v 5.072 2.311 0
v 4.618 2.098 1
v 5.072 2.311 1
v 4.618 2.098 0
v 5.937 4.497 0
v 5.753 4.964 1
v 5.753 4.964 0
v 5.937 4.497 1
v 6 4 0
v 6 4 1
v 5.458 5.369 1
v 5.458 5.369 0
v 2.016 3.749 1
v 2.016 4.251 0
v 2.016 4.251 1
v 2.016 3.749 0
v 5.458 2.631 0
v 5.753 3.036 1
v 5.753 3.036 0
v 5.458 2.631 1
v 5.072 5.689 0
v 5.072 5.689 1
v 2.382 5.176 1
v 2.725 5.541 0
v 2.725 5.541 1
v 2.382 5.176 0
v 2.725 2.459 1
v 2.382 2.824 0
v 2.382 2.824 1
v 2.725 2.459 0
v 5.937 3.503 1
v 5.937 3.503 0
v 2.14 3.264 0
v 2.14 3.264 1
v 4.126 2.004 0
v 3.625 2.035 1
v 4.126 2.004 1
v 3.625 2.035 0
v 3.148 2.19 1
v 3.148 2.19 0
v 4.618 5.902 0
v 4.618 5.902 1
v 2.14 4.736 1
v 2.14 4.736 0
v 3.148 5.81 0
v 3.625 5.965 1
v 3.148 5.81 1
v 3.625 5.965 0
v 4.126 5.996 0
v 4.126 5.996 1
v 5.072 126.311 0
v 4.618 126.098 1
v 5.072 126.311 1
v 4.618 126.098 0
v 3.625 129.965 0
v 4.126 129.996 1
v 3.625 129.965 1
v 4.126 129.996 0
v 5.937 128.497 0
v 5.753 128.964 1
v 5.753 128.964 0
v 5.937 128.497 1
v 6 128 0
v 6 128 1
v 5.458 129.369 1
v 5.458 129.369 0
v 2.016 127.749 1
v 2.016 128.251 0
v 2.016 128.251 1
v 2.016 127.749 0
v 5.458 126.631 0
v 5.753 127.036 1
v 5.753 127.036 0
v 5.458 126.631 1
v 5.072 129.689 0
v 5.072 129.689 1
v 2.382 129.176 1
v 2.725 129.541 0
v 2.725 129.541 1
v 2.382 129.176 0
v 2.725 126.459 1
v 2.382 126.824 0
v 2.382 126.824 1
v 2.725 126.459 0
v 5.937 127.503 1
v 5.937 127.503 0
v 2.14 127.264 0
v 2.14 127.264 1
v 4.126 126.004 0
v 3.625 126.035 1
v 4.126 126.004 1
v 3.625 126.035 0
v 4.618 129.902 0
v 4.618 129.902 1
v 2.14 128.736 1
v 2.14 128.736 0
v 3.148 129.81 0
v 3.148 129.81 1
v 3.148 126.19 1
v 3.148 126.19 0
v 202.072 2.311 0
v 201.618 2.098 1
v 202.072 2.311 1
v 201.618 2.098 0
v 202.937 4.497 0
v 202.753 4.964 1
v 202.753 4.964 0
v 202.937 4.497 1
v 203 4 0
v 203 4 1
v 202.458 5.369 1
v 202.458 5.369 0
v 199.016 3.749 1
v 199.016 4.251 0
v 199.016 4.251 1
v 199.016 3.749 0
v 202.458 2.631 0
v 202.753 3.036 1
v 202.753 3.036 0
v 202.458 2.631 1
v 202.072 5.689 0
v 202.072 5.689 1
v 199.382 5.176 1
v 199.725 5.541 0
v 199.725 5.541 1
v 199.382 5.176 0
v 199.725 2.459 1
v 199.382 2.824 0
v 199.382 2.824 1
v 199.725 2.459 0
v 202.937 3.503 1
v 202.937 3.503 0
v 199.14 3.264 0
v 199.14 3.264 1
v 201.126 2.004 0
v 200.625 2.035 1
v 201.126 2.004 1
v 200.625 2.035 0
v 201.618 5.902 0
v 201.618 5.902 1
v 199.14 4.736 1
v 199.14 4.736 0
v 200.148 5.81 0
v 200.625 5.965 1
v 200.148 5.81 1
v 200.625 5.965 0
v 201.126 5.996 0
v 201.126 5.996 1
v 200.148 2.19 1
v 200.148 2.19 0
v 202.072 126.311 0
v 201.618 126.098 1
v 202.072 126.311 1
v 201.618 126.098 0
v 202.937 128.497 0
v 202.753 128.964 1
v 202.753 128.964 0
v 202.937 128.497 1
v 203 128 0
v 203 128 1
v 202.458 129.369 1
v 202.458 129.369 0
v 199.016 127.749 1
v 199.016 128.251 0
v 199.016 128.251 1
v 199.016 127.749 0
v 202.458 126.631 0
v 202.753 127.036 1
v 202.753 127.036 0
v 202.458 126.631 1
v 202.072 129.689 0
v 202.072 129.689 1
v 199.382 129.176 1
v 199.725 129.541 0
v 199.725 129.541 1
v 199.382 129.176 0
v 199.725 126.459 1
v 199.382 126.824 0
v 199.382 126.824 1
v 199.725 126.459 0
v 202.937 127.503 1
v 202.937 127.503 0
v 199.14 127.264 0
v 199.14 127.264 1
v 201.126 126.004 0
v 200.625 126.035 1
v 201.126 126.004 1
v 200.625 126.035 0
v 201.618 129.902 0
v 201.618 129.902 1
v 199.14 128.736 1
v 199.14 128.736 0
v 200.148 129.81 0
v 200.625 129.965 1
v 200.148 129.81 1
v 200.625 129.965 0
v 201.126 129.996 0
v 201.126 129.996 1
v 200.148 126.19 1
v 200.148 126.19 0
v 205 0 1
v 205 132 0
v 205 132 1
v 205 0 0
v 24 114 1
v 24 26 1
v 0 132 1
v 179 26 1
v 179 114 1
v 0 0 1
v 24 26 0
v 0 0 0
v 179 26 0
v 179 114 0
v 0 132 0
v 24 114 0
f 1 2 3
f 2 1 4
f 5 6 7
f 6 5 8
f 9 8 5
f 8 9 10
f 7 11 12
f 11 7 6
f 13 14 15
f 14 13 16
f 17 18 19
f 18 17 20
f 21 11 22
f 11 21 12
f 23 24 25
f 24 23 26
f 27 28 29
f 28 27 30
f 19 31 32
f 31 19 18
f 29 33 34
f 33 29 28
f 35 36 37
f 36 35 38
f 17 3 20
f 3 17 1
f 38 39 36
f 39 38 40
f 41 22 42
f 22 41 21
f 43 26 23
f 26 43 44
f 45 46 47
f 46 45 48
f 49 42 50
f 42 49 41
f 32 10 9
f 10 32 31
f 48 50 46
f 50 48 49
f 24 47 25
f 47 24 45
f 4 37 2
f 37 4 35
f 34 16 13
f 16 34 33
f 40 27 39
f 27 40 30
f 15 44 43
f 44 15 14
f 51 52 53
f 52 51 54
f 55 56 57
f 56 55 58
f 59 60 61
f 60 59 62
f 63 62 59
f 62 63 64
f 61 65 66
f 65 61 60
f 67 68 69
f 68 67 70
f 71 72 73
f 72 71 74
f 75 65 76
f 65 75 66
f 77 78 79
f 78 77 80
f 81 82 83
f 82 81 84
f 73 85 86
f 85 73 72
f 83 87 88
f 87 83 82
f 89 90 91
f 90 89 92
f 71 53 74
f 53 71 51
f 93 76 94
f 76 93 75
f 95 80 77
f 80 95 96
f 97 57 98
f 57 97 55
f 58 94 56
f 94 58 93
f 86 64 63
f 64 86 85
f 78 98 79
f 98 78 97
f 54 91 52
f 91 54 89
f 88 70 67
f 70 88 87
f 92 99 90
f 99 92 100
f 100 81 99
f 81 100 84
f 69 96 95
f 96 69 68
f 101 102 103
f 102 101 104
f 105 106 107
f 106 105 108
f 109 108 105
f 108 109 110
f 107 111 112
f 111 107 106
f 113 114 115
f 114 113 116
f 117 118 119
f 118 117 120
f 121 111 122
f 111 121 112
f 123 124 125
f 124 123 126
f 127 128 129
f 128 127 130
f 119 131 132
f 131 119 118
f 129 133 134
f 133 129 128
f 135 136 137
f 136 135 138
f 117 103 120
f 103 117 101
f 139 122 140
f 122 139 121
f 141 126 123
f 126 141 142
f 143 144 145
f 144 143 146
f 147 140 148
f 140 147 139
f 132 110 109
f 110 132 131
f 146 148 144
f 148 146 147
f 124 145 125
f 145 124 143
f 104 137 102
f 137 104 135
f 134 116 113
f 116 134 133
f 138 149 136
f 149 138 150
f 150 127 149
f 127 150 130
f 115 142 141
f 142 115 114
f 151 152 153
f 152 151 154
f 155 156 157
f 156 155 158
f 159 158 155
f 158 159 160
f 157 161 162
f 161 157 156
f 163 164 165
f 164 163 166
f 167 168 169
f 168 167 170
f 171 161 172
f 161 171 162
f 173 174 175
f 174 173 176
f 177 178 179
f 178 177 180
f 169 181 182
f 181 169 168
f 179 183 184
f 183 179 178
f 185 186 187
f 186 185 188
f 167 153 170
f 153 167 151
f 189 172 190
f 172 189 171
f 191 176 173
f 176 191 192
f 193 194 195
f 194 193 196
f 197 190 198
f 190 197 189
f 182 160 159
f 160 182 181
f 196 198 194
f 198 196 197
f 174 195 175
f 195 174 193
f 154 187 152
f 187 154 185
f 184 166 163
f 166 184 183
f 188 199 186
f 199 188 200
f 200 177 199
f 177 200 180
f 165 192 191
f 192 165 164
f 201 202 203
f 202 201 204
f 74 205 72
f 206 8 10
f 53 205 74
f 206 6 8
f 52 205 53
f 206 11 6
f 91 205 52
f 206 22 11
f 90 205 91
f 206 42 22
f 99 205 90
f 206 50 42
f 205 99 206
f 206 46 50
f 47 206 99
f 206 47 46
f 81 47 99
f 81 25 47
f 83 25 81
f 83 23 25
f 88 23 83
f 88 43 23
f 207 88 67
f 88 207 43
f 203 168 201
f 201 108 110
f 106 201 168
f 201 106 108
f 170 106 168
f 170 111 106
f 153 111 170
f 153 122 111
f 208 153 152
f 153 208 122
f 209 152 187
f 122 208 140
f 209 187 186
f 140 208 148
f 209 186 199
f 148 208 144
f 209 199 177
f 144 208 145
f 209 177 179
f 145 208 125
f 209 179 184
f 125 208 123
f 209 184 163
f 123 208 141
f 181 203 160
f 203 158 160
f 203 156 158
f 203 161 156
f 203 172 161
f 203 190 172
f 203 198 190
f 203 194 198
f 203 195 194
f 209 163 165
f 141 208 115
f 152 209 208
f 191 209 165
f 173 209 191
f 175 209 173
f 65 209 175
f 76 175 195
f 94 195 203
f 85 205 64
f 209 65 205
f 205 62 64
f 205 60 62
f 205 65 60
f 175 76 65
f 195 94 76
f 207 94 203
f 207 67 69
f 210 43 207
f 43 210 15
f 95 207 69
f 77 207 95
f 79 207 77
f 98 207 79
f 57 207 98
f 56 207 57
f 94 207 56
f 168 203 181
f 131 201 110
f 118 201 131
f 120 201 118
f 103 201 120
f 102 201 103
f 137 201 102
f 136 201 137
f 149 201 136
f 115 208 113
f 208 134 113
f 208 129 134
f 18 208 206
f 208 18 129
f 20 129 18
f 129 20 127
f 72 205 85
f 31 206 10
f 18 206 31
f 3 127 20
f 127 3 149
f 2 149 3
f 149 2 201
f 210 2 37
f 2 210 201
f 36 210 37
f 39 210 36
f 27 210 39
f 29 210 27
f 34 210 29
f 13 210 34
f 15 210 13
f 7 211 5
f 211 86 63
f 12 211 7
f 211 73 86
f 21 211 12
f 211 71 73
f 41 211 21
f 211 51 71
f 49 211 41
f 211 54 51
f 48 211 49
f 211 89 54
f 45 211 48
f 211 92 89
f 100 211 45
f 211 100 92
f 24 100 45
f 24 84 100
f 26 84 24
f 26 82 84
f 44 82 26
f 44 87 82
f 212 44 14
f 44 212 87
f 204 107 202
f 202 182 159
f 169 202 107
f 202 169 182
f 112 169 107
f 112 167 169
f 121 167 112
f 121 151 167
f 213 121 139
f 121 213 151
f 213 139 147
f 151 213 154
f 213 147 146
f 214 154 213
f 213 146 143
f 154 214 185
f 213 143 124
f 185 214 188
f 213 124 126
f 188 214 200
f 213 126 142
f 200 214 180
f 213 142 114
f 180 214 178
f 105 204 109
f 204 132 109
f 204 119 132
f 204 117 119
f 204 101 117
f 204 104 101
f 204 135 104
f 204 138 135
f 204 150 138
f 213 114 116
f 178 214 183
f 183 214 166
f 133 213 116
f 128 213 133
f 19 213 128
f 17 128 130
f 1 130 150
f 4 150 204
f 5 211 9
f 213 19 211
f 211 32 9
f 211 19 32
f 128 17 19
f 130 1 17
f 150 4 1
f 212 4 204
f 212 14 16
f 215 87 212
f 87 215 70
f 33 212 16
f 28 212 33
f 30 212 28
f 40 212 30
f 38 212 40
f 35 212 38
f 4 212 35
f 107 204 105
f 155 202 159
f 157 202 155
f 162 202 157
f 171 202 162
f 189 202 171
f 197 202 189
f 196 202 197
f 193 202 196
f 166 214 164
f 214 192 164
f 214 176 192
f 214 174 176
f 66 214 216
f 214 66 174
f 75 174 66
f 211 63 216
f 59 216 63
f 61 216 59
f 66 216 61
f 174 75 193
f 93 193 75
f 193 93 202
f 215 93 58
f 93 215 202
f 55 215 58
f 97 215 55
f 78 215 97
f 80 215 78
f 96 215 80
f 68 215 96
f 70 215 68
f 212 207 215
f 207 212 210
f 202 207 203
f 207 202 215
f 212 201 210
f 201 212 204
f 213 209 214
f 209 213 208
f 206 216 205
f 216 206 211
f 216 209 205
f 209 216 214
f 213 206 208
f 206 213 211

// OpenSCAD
back_z = 3;
side_z = 32;

side = 3;

case_x = 205;
case_y = 132;

// Display: https://waveshare.com/7inch-hdmi-lcd-c.htm
// Display screw holes
display_x = 156.9;
display_y = 114.96;
display_z = 7.2;
display_left = case_x / 2 - display_x / 2;
display_bottom = case_y / 2 - display_y / 2;

// Board: https://waveshare.com/compute-module-4-poe-board-b.htm
// These are only the holes:
board_x = 118.5;
board_y = 102.8;
board_left = case_x / 2 - board_x / 2;
board_bottom = case_y / 2 - board_y / 2;

// PoE LAN module
// Will be replaced by keystone modules later
lan_x = 80;
lan_y = 29;
lan_z = 23;

// https://amazon.de/dp/B07ZKHB72D
keystone_y = 23;
keystone_z = 17;
keystone_border_y = 41;
keystone_border_z = 19.3;

// LAN cable
lan_cable_d = 5.6;

// display border
display_border_left = 24;
display_border_right = 26;
display_border_bottom = 26;
display_border_top = 18;
display_cutout_x = case_x - display_border_left - display_border_right;
display_cutout_y = case_y - display_border_top - display_border_bottom;

// ########### Front ###########

difference() {
    cube([case_x, case_y, 1]);

    // display cutout
    translate([display_border_left, display_border_right, -0.1])
        cube([display_cutout_x, display_cutout_y, 2]);

    // front plate screw holes
    for (x = [4, case_x - 4], y = [4, case_y - 4]) {
        color("red")
        translate([x, y, -0.1])
            cylinder(10, d=4, $fn=25);
    }
}
